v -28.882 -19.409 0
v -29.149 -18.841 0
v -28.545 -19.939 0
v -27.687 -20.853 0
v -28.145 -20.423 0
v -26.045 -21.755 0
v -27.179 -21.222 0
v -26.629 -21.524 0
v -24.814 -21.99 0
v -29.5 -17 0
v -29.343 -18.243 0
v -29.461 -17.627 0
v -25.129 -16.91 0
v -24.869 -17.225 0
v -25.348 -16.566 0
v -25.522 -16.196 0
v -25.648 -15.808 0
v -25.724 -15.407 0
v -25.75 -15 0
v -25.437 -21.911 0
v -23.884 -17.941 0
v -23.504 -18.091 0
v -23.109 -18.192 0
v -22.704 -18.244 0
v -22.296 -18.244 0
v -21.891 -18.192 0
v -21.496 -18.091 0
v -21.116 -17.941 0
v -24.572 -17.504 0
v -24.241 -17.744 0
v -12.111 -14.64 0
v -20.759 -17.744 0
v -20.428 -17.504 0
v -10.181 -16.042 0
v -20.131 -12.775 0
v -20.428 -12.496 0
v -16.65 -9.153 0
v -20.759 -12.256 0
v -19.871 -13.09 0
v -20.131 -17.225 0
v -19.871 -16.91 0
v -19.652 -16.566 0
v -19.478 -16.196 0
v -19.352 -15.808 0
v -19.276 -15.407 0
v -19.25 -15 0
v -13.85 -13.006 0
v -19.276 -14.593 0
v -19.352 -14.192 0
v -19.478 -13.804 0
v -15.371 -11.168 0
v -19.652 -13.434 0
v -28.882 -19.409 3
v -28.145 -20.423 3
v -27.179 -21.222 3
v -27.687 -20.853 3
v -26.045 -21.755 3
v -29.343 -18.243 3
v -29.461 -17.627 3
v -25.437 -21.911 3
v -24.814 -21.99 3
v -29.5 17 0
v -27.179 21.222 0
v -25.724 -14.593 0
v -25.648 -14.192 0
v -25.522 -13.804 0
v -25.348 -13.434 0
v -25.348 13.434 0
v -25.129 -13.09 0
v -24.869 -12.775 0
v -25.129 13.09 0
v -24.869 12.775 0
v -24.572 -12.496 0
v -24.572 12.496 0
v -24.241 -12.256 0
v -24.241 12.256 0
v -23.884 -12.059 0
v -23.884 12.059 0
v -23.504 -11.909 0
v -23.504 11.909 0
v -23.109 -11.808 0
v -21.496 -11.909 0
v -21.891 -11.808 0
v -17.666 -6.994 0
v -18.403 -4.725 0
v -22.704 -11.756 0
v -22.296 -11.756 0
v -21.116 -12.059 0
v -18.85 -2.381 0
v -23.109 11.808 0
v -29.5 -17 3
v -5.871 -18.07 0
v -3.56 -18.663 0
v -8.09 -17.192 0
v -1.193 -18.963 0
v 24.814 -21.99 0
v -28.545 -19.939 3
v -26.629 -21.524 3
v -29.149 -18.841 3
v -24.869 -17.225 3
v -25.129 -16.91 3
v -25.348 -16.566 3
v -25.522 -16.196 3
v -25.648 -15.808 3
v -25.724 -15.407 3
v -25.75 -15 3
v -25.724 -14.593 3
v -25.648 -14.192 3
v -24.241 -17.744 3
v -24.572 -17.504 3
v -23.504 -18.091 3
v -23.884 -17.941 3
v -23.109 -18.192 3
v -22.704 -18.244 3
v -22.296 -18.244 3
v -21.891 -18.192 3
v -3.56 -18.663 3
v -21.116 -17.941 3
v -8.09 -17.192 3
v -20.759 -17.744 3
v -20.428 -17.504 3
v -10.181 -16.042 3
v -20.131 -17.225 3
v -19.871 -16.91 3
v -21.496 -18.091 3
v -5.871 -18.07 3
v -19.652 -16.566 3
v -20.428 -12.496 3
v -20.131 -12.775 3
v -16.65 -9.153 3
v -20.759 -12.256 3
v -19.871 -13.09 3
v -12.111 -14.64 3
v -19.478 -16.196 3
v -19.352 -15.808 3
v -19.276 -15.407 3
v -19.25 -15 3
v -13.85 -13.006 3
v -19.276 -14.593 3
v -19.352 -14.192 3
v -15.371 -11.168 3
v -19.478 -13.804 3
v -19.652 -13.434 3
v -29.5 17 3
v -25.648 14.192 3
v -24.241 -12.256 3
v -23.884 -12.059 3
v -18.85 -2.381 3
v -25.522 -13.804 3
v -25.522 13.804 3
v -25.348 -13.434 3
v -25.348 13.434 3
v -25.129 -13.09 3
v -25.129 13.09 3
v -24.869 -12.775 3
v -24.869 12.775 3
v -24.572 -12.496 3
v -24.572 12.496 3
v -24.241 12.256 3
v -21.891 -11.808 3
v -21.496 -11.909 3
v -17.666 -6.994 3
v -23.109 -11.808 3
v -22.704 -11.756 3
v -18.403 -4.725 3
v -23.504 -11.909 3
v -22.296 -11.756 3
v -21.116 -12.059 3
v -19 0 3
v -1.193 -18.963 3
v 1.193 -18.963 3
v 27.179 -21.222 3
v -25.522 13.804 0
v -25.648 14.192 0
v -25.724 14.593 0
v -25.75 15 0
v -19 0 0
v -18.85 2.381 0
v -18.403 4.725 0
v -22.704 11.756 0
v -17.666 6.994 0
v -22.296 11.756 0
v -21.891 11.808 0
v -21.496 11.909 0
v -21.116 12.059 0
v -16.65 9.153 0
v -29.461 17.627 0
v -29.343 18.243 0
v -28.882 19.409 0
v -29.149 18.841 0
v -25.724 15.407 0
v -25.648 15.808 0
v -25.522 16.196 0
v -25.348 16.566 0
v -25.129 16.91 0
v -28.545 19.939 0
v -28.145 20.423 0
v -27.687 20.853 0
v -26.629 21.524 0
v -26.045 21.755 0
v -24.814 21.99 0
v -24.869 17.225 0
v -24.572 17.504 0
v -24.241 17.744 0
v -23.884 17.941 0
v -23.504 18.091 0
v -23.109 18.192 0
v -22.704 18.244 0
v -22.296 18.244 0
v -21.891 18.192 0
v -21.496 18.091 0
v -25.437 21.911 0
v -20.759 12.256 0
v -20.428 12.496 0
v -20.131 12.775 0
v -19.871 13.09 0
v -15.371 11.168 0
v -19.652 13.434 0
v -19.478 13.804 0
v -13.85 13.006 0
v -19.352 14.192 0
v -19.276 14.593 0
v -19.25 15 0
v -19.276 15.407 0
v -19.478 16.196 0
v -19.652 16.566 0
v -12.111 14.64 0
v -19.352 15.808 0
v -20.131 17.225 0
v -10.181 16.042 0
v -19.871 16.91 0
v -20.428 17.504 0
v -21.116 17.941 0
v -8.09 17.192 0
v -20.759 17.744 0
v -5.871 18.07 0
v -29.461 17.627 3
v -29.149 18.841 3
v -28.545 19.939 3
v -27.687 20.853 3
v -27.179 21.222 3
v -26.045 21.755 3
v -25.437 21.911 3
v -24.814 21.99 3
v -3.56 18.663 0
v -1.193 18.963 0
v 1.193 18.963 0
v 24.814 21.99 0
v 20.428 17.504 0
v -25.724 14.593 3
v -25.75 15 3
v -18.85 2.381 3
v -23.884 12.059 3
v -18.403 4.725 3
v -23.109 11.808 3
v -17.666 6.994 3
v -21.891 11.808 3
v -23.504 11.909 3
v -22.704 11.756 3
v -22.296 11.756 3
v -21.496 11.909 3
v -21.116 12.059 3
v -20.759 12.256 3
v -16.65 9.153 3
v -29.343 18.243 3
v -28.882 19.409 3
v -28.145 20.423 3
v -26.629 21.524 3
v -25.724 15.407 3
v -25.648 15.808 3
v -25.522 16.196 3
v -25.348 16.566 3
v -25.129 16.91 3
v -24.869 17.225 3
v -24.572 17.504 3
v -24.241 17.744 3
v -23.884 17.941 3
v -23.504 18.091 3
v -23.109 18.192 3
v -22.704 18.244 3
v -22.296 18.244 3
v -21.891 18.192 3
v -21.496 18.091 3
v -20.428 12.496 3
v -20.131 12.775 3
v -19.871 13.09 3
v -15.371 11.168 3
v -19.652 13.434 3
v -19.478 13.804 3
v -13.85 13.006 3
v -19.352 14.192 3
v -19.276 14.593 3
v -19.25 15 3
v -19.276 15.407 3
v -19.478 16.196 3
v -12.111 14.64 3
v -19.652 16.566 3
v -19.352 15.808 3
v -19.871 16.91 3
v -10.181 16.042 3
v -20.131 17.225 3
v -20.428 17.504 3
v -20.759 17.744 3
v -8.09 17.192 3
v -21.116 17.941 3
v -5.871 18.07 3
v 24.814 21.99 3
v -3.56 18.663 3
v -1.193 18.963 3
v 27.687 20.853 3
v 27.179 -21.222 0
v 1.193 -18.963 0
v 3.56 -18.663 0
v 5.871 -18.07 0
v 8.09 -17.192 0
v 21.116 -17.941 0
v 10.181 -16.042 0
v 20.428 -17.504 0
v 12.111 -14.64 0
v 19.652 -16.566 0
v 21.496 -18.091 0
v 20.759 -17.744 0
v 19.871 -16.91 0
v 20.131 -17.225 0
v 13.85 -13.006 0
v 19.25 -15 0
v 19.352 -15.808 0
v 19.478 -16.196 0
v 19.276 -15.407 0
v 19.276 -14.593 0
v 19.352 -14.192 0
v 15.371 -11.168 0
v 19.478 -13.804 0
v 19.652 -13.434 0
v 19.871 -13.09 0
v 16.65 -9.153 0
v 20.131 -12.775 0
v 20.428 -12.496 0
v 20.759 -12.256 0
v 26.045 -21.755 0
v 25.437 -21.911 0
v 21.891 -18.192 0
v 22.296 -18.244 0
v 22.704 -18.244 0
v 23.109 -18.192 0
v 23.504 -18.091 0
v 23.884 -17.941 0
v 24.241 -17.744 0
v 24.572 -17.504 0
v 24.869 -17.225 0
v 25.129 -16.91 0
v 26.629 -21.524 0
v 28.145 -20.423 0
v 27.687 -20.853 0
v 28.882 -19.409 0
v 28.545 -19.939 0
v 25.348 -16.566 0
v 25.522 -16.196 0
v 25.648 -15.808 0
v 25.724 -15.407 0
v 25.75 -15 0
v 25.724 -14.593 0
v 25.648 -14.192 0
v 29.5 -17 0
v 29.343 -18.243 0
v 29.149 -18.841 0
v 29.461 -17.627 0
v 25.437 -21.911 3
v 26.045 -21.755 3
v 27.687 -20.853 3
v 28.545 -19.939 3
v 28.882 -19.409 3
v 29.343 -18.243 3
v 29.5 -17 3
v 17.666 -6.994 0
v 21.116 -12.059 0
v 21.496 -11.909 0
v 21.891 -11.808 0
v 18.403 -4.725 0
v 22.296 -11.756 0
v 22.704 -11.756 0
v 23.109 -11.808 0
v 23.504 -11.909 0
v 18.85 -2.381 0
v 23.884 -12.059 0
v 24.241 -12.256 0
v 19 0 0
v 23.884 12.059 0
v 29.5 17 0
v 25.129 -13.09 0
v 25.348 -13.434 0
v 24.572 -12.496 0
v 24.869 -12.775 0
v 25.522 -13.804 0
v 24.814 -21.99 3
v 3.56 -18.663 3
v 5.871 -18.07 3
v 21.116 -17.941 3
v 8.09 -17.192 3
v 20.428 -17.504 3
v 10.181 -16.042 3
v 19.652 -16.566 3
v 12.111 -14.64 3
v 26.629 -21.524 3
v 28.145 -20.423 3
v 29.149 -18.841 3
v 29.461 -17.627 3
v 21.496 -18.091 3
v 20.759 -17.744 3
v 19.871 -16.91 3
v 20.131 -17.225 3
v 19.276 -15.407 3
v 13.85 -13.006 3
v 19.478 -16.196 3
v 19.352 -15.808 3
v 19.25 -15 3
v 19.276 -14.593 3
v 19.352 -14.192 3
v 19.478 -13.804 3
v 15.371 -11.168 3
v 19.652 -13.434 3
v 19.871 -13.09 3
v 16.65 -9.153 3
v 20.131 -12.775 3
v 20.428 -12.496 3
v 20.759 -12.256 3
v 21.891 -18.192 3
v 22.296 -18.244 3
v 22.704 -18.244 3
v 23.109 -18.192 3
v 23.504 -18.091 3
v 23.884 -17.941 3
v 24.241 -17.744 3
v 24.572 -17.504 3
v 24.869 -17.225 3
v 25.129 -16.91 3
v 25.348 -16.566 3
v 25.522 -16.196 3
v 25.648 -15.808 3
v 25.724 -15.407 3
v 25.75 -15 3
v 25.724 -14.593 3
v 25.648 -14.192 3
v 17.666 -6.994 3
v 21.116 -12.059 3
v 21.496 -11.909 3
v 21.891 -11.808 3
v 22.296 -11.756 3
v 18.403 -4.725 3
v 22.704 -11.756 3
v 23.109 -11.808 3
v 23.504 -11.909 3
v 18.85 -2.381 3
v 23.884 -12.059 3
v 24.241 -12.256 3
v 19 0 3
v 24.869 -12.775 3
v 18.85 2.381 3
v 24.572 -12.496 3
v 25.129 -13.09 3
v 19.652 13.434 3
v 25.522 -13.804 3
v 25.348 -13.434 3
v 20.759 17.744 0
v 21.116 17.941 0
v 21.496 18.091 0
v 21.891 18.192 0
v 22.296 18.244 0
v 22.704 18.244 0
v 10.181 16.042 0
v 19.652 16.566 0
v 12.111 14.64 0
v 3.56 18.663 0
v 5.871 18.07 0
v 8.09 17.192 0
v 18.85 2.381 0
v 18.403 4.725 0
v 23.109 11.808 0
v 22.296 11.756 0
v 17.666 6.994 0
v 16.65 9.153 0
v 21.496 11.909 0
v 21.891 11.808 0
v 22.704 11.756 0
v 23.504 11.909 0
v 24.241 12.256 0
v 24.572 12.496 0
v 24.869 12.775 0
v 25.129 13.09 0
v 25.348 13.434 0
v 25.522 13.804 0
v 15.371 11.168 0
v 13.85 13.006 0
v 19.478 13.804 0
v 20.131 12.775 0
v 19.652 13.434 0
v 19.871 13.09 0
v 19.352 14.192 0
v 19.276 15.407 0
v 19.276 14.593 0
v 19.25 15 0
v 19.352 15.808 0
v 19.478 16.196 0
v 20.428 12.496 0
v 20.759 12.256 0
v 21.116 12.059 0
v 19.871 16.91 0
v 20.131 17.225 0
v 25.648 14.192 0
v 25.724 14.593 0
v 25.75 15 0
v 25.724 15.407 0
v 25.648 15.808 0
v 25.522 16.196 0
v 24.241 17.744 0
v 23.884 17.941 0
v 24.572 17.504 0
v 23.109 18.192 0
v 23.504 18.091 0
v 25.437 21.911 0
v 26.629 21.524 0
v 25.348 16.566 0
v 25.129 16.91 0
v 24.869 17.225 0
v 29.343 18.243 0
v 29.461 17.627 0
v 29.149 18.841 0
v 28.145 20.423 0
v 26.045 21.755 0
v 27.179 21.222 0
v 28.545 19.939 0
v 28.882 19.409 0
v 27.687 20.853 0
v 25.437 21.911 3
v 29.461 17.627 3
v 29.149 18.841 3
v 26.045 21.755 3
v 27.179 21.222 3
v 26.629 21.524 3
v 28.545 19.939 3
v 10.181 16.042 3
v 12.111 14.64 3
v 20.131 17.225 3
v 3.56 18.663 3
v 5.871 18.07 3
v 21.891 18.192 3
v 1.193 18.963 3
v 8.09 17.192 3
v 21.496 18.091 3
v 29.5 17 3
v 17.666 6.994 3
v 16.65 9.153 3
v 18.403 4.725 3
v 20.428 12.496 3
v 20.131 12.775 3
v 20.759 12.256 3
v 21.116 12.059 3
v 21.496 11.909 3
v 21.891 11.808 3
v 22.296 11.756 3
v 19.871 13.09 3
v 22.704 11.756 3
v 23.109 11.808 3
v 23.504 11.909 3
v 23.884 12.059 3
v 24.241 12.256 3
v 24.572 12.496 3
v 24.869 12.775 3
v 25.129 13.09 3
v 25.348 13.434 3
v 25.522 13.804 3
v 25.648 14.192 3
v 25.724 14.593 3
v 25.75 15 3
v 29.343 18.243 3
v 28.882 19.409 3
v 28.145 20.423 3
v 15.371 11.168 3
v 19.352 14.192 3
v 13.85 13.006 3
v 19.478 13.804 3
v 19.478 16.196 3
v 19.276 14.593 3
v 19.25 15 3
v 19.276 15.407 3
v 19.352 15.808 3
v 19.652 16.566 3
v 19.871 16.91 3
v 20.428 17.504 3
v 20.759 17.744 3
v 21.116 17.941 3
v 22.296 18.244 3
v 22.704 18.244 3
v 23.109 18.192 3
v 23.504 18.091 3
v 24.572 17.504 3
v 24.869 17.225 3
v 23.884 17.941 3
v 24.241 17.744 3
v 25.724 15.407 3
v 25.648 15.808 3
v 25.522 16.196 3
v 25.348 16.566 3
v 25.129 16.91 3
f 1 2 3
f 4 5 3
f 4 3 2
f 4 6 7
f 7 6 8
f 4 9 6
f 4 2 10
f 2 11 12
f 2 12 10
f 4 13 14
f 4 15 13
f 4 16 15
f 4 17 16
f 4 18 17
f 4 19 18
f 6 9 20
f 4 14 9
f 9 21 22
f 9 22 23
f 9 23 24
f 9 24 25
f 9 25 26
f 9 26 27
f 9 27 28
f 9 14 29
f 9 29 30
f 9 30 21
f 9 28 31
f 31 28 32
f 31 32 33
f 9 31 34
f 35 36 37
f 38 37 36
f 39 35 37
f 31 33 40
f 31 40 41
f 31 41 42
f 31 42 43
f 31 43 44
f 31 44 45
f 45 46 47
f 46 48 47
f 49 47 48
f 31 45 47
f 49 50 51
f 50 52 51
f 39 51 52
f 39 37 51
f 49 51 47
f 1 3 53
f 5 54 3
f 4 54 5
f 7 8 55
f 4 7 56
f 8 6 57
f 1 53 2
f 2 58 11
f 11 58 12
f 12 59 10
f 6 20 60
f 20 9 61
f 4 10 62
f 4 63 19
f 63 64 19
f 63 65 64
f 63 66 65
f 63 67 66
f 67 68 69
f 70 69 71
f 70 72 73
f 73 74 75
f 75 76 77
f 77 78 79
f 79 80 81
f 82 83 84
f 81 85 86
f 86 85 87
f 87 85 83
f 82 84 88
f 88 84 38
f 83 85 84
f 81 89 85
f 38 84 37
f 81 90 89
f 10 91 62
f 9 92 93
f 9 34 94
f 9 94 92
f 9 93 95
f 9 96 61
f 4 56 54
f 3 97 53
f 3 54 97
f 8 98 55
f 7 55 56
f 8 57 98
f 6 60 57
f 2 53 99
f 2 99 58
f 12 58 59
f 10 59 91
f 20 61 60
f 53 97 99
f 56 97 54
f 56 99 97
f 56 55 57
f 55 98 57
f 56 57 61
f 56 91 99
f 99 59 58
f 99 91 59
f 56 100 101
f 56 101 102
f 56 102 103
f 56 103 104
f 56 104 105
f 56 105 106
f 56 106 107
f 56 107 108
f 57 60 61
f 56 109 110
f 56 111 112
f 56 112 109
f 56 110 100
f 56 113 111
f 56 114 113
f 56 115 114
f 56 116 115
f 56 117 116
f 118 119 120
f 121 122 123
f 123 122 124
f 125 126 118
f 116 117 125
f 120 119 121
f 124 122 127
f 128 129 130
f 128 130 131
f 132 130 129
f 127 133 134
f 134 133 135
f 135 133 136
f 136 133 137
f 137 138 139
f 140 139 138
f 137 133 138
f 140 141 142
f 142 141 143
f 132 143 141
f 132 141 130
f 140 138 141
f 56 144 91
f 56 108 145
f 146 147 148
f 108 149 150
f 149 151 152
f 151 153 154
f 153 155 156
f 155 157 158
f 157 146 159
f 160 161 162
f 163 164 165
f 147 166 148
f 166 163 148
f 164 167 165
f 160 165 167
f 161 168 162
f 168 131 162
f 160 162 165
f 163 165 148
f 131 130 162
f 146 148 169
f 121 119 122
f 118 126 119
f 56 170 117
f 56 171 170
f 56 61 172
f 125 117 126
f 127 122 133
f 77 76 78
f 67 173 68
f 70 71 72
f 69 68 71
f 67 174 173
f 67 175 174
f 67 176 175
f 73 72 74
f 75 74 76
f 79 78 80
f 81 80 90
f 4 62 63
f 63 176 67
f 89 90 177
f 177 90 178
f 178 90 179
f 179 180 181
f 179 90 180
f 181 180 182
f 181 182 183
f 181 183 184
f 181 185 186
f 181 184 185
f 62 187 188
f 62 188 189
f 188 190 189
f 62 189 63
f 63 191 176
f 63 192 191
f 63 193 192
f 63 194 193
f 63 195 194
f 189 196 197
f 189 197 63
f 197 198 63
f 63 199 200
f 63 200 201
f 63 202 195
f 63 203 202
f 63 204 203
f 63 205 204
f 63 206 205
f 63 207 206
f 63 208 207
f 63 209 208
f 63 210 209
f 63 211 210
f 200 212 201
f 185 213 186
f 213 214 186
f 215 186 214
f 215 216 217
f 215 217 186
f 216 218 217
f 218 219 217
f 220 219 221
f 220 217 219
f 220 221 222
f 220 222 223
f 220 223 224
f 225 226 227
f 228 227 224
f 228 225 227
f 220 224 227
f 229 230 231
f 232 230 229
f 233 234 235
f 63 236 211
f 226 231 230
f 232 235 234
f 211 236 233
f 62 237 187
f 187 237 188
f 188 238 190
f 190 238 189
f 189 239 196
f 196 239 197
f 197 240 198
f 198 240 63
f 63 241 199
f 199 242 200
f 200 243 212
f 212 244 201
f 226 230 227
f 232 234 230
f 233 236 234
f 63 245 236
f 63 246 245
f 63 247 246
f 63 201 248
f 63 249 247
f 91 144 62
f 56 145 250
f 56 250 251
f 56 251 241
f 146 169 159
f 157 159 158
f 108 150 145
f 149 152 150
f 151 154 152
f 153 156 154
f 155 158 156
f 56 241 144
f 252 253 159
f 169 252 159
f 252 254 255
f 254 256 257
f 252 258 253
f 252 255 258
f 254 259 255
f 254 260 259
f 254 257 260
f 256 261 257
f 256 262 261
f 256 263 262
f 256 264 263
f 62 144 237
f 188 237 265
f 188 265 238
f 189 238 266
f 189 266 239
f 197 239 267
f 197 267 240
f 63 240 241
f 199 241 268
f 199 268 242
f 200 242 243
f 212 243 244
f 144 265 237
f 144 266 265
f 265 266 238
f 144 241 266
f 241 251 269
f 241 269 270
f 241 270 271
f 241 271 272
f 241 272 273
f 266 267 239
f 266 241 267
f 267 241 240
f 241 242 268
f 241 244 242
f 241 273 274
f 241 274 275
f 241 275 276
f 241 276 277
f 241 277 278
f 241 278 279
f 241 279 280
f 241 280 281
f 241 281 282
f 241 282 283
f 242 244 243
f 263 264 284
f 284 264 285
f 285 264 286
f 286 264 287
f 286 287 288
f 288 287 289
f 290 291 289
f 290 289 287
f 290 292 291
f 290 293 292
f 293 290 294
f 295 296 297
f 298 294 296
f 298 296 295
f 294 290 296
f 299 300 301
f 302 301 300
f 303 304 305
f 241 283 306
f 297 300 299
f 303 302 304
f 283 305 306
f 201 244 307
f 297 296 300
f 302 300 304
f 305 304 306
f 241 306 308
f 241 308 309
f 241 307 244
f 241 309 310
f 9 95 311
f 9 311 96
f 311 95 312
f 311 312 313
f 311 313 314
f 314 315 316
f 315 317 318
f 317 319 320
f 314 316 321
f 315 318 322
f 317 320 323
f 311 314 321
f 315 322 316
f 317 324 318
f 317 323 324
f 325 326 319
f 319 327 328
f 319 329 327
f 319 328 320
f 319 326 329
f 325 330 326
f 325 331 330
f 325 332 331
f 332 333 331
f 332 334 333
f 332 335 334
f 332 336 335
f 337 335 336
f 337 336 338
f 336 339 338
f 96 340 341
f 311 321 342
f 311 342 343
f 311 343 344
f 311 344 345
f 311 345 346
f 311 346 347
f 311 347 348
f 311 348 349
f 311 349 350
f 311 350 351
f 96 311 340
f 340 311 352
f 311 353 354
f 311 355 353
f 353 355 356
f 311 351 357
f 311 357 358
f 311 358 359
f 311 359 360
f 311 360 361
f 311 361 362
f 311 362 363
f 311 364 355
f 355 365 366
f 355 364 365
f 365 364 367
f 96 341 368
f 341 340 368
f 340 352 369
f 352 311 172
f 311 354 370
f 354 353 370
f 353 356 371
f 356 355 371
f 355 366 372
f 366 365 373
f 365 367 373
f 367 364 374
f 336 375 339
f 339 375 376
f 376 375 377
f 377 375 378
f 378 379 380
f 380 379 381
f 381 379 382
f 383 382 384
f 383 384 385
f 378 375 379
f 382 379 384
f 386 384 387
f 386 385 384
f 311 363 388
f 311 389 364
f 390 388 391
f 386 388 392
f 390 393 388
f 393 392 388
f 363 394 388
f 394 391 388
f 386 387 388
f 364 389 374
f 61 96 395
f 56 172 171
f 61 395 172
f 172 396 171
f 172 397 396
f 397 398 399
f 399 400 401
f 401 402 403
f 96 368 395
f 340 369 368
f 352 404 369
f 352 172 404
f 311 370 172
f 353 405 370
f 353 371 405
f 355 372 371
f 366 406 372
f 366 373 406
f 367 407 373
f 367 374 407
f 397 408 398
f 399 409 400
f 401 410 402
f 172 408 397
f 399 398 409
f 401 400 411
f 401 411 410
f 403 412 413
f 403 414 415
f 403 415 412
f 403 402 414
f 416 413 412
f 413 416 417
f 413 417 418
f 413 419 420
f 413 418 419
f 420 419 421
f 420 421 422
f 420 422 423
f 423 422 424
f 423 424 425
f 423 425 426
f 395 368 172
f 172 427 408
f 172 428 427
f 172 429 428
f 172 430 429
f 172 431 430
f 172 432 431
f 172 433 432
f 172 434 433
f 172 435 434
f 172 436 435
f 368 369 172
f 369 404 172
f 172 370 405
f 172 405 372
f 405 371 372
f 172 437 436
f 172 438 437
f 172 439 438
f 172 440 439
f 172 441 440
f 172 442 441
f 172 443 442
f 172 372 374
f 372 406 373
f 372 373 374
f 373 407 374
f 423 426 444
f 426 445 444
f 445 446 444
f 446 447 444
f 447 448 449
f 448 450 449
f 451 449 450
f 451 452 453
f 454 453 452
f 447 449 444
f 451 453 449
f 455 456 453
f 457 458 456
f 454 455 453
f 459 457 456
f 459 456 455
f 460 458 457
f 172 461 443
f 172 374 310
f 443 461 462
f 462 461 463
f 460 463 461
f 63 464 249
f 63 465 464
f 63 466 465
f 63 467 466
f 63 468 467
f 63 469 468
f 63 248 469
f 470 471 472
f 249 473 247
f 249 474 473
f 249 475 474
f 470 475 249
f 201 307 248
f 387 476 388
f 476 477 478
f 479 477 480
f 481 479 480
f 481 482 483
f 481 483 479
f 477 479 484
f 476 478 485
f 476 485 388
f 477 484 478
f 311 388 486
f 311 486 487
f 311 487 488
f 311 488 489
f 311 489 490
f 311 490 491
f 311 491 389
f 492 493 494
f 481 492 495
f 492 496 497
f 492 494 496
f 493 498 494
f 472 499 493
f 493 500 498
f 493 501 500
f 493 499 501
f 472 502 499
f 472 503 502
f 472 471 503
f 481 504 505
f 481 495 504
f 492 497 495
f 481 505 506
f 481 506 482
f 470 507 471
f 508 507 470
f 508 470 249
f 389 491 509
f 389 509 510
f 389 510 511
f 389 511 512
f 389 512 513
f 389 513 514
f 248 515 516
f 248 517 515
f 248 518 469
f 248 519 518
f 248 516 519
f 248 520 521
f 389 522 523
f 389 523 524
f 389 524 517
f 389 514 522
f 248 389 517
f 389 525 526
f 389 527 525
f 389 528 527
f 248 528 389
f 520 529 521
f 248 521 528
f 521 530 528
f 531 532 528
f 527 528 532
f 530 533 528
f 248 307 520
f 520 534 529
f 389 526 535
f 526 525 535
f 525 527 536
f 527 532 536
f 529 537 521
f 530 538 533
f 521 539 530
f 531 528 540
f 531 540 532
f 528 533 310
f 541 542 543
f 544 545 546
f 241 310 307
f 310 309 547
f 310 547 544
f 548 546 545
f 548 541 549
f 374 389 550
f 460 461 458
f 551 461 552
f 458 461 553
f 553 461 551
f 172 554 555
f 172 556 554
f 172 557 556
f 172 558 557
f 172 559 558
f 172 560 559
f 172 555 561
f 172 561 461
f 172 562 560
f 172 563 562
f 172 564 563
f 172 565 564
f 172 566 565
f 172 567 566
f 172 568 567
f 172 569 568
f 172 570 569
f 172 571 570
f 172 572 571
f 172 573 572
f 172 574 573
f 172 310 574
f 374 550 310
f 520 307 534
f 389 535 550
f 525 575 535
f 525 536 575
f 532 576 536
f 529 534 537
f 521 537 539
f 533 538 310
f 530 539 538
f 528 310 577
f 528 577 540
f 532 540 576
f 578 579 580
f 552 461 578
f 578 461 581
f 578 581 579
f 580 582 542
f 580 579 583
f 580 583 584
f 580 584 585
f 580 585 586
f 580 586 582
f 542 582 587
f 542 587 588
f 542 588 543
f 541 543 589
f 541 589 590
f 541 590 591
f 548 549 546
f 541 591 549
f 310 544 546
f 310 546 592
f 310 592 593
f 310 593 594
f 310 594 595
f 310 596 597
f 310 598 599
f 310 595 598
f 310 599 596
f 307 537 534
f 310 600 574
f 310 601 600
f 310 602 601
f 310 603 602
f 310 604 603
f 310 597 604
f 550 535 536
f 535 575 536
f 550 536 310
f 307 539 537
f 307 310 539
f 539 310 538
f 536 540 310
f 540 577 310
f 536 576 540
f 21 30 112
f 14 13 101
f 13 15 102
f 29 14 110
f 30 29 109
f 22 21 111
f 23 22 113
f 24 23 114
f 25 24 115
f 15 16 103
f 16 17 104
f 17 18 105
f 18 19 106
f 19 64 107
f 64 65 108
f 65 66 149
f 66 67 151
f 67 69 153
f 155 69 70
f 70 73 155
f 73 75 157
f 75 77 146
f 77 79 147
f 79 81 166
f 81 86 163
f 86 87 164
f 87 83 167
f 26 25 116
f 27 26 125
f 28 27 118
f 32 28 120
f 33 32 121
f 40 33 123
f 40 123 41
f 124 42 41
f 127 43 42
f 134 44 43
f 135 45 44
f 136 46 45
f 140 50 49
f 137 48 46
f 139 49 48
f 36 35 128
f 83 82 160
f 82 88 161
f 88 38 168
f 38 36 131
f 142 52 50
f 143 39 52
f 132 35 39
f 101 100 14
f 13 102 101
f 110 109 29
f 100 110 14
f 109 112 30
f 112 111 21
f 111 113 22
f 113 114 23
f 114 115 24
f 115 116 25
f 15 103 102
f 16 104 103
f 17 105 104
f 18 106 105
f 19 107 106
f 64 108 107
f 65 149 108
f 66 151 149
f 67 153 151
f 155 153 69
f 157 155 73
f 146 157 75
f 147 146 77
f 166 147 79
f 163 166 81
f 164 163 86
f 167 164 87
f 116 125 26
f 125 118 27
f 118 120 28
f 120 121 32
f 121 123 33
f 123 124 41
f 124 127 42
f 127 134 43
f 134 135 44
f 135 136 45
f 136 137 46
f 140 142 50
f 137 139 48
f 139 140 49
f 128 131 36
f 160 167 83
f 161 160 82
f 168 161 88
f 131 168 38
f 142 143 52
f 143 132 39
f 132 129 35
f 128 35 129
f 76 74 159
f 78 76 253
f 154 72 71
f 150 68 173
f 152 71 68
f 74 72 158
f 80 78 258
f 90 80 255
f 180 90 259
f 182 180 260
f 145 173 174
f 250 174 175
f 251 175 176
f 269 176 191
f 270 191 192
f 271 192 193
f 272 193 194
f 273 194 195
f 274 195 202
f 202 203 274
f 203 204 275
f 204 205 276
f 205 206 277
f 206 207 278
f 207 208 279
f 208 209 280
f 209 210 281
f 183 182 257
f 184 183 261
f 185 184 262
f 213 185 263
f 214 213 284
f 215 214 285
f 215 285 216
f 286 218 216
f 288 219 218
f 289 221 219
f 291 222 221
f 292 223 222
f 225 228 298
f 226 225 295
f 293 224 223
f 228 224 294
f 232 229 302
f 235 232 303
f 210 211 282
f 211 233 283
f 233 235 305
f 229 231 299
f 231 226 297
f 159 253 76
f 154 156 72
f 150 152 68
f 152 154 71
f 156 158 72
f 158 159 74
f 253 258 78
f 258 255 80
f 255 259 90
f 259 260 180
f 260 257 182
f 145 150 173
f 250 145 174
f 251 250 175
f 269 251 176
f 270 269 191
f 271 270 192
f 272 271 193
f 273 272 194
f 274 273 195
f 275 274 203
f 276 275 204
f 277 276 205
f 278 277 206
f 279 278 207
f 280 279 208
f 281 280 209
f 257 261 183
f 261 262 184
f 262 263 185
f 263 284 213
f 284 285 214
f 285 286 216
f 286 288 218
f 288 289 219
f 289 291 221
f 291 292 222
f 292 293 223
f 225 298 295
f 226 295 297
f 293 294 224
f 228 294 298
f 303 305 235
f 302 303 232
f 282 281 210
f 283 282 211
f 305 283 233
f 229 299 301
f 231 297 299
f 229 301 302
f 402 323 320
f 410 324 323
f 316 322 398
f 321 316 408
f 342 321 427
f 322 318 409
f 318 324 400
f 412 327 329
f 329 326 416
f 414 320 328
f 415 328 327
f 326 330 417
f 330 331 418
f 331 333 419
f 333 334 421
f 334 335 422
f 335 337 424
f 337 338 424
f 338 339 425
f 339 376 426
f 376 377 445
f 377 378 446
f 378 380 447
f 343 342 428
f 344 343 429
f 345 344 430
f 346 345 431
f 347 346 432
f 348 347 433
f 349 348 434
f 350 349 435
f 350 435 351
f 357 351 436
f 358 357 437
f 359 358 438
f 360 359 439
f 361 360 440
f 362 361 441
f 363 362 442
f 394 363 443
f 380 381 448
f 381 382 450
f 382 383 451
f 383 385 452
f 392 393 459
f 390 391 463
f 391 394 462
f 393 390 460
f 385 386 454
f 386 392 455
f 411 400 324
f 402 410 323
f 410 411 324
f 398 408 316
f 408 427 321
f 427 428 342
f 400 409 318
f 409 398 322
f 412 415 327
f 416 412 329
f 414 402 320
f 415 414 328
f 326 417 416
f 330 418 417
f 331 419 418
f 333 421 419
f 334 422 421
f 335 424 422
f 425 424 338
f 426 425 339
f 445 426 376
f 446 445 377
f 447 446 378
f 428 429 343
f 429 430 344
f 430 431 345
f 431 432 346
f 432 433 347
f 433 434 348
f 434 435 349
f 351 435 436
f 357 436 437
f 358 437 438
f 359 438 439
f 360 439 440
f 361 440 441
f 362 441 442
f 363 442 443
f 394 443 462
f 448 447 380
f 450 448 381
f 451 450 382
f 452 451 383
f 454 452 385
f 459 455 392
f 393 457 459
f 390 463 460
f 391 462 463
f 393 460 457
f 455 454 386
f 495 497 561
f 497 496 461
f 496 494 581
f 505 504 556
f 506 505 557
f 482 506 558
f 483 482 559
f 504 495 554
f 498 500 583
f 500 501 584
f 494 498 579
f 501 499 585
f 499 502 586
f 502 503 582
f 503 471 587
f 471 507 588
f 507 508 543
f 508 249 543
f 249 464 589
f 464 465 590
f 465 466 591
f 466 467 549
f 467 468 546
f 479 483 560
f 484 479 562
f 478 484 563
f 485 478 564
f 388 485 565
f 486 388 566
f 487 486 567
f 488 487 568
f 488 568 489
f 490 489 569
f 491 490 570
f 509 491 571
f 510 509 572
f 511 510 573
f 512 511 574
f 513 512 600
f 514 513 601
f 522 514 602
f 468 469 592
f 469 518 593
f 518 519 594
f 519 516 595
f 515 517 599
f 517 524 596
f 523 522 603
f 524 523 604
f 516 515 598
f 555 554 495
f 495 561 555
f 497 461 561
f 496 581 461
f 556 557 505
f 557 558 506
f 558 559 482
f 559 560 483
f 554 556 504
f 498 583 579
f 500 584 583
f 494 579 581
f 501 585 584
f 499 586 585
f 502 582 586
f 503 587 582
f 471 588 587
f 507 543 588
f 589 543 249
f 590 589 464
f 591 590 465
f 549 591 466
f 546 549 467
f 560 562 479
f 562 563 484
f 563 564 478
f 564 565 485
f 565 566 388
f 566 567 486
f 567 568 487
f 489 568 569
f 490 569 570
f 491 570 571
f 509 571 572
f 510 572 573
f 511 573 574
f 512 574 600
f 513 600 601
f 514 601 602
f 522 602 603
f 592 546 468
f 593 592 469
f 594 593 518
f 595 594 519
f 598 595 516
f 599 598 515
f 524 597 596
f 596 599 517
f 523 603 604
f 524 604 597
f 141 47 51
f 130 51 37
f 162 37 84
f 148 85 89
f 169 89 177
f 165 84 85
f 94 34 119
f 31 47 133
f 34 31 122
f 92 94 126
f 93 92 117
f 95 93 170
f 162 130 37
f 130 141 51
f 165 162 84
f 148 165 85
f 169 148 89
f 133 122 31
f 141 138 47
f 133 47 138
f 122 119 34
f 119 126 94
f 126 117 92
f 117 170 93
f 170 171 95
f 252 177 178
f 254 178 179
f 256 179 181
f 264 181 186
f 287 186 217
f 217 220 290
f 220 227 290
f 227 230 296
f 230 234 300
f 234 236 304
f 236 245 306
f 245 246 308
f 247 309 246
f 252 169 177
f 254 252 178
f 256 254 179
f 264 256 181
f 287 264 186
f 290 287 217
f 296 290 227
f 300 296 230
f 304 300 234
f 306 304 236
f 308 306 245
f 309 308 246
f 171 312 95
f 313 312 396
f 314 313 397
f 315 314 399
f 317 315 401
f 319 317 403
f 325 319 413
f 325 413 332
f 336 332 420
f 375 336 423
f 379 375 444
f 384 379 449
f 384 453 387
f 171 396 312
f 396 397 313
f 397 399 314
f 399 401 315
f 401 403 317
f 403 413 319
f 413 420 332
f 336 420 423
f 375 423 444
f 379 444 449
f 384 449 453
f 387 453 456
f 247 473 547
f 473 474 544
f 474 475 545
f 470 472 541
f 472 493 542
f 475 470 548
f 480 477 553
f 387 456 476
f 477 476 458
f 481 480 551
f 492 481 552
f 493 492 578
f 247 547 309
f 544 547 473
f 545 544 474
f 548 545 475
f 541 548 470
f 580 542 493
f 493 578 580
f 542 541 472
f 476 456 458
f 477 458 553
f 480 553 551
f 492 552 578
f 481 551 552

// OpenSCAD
$fn = 50;

difference() {
	union() {
		hull() {
			translate(v = [-24.5, 17.0, 0]) {
				cylinder(h = 3, r = 5);
			}
			translate(v = [24.5, 17.0, 0]) {
				cylinder(h = 3, r = 5);
			}
			translate(v = [-24.5, -17.0, 0]) {
				cylinder(h = 3, r = 5);
			}
			translate(v = [24.5, -17.0, 0]) {
				cylinder(h = 3, r = 5);
			}
		}
	}
	union() {
		translate(v = [-22.5, -15.0, 0]) {
			cylinder(h = 3, r = 3.25);
		}
		translate(v = [-22.5, 15.0, 0]) {
			cylinder(h = 3, r = 3.25);
		}
		translate(v = [22.5, -15.0, 0]) {
			cylinder(h = 3, r = 3.25);
		}
		translate(v = [22.5, 15.0, 0]) {
			cylinder(h = 3, r = 3.25);
		}
		cylinder(h = 3, r = 19.0);
	}
}
